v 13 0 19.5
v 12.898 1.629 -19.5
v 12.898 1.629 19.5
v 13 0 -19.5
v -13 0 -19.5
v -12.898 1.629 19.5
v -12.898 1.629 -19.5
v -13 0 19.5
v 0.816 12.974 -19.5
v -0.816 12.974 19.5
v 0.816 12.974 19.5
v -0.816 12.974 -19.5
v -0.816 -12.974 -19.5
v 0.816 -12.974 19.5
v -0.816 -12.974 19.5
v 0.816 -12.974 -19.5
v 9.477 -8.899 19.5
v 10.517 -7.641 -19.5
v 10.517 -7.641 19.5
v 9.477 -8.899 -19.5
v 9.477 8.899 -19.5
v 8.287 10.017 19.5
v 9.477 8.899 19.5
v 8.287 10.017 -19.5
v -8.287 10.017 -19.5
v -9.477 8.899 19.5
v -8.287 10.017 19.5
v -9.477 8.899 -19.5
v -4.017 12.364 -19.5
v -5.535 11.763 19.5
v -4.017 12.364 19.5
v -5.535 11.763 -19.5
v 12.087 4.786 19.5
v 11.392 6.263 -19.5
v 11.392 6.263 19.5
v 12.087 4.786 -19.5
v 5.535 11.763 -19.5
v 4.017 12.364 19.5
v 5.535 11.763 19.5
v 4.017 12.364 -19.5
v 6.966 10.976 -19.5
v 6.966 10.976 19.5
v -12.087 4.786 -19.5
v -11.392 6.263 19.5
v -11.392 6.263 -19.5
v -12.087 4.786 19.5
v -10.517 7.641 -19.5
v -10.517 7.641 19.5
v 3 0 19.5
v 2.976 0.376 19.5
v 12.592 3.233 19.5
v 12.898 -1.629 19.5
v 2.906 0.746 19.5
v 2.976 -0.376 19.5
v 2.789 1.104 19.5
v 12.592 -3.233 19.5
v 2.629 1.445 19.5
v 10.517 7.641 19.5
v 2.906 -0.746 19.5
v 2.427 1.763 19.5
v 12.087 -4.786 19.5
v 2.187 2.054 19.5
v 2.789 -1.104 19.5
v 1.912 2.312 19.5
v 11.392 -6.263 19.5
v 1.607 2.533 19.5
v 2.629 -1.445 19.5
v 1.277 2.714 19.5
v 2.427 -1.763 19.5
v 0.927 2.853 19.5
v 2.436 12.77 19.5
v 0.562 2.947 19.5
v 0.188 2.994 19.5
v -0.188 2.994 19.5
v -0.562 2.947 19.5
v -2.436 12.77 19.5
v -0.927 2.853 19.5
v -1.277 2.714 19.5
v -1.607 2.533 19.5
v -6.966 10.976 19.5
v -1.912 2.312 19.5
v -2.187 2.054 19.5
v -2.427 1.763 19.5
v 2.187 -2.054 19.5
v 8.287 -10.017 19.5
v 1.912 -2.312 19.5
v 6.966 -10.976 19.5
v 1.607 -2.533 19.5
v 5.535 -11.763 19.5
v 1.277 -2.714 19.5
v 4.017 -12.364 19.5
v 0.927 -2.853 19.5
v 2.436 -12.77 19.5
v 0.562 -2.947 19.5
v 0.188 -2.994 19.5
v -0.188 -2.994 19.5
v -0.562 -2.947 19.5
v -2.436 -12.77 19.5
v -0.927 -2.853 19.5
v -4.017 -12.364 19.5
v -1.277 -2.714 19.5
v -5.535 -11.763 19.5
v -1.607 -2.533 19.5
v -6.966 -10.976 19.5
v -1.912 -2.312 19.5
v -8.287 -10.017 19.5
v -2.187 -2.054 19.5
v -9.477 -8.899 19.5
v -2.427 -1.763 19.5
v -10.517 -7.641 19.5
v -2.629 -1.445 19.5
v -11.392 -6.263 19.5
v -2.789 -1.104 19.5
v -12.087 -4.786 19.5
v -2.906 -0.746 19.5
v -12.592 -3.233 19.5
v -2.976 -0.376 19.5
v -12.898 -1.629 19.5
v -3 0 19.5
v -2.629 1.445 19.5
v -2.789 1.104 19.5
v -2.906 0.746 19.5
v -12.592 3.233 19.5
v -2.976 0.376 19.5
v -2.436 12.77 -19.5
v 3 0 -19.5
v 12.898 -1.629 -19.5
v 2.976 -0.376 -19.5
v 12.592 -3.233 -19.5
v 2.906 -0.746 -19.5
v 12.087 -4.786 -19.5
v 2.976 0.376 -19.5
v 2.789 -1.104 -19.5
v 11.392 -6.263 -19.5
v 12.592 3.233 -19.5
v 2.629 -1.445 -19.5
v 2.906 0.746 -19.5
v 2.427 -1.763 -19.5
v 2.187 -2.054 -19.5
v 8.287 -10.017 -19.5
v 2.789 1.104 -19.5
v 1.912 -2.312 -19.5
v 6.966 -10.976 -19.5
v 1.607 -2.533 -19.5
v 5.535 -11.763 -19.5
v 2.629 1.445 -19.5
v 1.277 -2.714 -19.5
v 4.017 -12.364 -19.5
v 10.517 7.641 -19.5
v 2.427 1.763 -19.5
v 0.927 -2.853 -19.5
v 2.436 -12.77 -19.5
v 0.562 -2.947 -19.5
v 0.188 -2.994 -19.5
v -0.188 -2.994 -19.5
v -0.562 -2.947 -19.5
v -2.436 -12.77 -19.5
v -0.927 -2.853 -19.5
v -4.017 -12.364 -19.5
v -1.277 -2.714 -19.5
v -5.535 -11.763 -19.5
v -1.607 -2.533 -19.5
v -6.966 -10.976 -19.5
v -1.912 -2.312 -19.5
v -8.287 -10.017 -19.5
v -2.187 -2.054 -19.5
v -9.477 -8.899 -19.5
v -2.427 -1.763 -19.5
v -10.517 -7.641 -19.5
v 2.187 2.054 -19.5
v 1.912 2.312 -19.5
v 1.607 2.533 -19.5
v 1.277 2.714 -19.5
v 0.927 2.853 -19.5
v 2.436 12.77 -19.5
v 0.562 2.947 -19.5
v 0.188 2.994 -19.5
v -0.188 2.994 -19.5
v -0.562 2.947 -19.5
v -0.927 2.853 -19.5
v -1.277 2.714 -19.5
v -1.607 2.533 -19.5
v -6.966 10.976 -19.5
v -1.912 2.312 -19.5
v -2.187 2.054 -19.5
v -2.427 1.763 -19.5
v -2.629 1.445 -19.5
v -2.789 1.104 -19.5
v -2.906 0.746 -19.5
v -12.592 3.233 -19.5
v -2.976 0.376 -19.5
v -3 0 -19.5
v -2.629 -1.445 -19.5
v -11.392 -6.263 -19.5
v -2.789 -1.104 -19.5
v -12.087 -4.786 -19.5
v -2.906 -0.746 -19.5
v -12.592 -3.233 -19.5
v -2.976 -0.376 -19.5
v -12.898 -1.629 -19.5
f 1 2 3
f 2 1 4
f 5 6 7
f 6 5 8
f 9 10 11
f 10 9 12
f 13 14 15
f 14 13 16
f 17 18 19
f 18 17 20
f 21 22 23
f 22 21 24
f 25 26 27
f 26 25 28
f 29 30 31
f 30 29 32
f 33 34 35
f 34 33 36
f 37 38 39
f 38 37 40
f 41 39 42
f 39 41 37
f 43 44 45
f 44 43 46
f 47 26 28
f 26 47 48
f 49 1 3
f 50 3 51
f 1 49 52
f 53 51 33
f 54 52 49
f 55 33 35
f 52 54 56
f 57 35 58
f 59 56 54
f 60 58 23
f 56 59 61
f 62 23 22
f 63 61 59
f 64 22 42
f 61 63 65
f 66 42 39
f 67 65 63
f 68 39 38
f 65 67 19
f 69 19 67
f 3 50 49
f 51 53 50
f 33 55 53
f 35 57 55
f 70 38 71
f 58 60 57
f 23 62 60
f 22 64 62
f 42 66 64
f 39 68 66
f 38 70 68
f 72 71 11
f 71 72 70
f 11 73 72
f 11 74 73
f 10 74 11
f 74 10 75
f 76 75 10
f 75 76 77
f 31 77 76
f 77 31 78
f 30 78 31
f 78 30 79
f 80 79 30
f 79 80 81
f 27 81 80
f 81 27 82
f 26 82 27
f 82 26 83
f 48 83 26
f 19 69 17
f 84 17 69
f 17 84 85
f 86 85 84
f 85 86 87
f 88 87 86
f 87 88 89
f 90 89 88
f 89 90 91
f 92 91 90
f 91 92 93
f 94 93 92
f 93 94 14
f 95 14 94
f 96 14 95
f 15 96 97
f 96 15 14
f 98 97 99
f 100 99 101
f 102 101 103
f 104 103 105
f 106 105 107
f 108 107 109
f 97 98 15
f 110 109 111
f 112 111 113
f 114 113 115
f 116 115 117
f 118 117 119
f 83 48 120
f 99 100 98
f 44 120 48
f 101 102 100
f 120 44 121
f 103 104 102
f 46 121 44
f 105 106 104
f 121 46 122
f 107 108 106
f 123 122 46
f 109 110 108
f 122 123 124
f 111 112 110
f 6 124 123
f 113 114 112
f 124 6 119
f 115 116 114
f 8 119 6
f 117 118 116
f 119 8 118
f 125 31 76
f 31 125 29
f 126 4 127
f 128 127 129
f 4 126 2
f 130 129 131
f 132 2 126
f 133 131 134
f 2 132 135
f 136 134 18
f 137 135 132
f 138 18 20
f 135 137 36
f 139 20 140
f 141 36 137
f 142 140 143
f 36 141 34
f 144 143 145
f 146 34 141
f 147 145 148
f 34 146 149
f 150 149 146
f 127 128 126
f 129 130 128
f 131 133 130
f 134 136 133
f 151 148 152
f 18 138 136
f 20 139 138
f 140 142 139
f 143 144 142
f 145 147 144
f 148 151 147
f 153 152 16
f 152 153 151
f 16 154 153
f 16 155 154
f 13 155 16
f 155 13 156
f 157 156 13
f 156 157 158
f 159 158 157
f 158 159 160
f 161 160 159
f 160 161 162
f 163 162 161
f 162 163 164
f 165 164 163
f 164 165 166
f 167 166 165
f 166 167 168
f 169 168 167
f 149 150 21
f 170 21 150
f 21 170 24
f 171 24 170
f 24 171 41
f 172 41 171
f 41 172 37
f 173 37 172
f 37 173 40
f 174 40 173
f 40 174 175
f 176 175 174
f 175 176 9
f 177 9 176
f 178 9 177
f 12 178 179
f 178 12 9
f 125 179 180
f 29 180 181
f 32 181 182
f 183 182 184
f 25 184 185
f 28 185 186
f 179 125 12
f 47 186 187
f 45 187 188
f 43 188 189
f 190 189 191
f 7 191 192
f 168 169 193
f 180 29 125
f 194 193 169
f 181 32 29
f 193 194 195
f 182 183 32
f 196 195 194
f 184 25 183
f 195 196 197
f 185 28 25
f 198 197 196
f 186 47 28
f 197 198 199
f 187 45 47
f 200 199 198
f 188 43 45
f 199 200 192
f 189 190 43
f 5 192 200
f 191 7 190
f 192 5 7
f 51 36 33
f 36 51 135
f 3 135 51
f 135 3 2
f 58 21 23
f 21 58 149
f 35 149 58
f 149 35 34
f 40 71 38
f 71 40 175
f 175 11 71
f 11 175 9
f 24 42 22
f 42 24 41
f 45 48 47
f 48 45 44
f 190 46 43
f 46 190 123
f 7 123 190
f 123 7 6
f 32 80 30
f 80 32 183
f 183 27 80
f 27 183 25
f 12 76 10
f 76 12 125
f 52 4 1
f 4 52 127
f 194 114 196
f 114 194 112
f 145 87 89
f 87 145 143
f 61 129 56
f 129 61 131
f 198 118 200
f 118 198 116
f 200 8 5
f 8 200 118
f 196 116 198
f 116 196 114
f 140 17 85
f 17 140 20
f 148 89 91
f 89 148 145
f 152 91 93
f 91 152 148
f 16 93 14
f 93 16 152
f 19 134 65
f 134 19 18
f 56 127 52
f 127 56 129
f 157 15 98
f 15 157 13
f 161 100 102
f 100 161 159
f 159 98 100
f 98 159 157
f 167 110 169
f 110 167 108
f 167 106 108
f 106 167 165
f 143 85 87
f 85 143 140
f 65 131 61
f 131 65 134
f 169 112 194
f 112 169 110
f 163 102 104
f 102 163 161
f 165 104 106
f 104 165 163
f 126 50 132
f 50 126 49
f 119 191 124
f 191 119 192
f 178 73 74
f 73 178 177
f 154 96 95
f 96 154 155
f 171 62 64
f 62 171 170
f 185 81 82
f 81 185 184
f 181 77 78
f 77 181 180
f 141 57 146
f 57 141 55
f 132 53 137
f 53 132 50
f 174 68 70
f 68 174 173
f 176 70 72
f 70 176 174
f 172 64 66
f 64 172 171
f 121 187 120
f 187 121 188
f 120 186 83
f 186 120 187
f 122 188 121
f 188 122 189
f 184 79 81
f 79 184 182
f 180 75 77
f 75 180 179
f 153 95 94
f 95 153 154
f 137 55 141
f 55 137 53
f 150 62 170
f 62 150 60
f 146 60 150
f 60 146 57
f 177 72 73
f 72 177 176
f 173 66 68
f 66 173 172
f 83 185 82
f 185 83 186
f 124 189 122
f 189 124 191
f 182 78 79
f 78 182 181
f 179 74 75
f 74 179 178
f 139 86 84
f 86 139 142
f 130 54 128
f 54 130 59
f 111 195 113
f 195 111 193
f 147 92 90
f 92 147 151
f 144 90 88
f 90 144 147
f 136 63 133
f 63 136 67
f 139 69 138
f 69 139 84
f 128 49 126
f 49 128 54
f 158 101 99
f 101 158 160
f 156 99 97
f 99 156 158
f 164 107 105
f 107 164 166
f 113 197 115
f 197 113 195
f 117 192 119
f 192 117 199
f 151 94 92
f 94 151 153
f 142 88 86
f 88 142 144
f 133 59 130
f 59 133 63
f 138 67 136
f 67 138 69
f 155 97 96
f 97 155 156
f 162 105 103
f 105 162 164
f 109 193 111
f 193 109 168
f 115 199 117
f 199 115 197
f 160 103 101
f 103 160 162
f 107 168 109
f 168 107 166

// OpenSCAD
$fn = 50;


difference() {
	union() {
		translate(v = [0, 0, -19.5000000000]) {
			cylinder(h = 39, r = 13.0000000000);
		}
	}
	union() {
		translate(v = [0, 0, -100.0000000000]) {
			cylinder(h = 200, r = 3.0000000000);
		}
	}
}
